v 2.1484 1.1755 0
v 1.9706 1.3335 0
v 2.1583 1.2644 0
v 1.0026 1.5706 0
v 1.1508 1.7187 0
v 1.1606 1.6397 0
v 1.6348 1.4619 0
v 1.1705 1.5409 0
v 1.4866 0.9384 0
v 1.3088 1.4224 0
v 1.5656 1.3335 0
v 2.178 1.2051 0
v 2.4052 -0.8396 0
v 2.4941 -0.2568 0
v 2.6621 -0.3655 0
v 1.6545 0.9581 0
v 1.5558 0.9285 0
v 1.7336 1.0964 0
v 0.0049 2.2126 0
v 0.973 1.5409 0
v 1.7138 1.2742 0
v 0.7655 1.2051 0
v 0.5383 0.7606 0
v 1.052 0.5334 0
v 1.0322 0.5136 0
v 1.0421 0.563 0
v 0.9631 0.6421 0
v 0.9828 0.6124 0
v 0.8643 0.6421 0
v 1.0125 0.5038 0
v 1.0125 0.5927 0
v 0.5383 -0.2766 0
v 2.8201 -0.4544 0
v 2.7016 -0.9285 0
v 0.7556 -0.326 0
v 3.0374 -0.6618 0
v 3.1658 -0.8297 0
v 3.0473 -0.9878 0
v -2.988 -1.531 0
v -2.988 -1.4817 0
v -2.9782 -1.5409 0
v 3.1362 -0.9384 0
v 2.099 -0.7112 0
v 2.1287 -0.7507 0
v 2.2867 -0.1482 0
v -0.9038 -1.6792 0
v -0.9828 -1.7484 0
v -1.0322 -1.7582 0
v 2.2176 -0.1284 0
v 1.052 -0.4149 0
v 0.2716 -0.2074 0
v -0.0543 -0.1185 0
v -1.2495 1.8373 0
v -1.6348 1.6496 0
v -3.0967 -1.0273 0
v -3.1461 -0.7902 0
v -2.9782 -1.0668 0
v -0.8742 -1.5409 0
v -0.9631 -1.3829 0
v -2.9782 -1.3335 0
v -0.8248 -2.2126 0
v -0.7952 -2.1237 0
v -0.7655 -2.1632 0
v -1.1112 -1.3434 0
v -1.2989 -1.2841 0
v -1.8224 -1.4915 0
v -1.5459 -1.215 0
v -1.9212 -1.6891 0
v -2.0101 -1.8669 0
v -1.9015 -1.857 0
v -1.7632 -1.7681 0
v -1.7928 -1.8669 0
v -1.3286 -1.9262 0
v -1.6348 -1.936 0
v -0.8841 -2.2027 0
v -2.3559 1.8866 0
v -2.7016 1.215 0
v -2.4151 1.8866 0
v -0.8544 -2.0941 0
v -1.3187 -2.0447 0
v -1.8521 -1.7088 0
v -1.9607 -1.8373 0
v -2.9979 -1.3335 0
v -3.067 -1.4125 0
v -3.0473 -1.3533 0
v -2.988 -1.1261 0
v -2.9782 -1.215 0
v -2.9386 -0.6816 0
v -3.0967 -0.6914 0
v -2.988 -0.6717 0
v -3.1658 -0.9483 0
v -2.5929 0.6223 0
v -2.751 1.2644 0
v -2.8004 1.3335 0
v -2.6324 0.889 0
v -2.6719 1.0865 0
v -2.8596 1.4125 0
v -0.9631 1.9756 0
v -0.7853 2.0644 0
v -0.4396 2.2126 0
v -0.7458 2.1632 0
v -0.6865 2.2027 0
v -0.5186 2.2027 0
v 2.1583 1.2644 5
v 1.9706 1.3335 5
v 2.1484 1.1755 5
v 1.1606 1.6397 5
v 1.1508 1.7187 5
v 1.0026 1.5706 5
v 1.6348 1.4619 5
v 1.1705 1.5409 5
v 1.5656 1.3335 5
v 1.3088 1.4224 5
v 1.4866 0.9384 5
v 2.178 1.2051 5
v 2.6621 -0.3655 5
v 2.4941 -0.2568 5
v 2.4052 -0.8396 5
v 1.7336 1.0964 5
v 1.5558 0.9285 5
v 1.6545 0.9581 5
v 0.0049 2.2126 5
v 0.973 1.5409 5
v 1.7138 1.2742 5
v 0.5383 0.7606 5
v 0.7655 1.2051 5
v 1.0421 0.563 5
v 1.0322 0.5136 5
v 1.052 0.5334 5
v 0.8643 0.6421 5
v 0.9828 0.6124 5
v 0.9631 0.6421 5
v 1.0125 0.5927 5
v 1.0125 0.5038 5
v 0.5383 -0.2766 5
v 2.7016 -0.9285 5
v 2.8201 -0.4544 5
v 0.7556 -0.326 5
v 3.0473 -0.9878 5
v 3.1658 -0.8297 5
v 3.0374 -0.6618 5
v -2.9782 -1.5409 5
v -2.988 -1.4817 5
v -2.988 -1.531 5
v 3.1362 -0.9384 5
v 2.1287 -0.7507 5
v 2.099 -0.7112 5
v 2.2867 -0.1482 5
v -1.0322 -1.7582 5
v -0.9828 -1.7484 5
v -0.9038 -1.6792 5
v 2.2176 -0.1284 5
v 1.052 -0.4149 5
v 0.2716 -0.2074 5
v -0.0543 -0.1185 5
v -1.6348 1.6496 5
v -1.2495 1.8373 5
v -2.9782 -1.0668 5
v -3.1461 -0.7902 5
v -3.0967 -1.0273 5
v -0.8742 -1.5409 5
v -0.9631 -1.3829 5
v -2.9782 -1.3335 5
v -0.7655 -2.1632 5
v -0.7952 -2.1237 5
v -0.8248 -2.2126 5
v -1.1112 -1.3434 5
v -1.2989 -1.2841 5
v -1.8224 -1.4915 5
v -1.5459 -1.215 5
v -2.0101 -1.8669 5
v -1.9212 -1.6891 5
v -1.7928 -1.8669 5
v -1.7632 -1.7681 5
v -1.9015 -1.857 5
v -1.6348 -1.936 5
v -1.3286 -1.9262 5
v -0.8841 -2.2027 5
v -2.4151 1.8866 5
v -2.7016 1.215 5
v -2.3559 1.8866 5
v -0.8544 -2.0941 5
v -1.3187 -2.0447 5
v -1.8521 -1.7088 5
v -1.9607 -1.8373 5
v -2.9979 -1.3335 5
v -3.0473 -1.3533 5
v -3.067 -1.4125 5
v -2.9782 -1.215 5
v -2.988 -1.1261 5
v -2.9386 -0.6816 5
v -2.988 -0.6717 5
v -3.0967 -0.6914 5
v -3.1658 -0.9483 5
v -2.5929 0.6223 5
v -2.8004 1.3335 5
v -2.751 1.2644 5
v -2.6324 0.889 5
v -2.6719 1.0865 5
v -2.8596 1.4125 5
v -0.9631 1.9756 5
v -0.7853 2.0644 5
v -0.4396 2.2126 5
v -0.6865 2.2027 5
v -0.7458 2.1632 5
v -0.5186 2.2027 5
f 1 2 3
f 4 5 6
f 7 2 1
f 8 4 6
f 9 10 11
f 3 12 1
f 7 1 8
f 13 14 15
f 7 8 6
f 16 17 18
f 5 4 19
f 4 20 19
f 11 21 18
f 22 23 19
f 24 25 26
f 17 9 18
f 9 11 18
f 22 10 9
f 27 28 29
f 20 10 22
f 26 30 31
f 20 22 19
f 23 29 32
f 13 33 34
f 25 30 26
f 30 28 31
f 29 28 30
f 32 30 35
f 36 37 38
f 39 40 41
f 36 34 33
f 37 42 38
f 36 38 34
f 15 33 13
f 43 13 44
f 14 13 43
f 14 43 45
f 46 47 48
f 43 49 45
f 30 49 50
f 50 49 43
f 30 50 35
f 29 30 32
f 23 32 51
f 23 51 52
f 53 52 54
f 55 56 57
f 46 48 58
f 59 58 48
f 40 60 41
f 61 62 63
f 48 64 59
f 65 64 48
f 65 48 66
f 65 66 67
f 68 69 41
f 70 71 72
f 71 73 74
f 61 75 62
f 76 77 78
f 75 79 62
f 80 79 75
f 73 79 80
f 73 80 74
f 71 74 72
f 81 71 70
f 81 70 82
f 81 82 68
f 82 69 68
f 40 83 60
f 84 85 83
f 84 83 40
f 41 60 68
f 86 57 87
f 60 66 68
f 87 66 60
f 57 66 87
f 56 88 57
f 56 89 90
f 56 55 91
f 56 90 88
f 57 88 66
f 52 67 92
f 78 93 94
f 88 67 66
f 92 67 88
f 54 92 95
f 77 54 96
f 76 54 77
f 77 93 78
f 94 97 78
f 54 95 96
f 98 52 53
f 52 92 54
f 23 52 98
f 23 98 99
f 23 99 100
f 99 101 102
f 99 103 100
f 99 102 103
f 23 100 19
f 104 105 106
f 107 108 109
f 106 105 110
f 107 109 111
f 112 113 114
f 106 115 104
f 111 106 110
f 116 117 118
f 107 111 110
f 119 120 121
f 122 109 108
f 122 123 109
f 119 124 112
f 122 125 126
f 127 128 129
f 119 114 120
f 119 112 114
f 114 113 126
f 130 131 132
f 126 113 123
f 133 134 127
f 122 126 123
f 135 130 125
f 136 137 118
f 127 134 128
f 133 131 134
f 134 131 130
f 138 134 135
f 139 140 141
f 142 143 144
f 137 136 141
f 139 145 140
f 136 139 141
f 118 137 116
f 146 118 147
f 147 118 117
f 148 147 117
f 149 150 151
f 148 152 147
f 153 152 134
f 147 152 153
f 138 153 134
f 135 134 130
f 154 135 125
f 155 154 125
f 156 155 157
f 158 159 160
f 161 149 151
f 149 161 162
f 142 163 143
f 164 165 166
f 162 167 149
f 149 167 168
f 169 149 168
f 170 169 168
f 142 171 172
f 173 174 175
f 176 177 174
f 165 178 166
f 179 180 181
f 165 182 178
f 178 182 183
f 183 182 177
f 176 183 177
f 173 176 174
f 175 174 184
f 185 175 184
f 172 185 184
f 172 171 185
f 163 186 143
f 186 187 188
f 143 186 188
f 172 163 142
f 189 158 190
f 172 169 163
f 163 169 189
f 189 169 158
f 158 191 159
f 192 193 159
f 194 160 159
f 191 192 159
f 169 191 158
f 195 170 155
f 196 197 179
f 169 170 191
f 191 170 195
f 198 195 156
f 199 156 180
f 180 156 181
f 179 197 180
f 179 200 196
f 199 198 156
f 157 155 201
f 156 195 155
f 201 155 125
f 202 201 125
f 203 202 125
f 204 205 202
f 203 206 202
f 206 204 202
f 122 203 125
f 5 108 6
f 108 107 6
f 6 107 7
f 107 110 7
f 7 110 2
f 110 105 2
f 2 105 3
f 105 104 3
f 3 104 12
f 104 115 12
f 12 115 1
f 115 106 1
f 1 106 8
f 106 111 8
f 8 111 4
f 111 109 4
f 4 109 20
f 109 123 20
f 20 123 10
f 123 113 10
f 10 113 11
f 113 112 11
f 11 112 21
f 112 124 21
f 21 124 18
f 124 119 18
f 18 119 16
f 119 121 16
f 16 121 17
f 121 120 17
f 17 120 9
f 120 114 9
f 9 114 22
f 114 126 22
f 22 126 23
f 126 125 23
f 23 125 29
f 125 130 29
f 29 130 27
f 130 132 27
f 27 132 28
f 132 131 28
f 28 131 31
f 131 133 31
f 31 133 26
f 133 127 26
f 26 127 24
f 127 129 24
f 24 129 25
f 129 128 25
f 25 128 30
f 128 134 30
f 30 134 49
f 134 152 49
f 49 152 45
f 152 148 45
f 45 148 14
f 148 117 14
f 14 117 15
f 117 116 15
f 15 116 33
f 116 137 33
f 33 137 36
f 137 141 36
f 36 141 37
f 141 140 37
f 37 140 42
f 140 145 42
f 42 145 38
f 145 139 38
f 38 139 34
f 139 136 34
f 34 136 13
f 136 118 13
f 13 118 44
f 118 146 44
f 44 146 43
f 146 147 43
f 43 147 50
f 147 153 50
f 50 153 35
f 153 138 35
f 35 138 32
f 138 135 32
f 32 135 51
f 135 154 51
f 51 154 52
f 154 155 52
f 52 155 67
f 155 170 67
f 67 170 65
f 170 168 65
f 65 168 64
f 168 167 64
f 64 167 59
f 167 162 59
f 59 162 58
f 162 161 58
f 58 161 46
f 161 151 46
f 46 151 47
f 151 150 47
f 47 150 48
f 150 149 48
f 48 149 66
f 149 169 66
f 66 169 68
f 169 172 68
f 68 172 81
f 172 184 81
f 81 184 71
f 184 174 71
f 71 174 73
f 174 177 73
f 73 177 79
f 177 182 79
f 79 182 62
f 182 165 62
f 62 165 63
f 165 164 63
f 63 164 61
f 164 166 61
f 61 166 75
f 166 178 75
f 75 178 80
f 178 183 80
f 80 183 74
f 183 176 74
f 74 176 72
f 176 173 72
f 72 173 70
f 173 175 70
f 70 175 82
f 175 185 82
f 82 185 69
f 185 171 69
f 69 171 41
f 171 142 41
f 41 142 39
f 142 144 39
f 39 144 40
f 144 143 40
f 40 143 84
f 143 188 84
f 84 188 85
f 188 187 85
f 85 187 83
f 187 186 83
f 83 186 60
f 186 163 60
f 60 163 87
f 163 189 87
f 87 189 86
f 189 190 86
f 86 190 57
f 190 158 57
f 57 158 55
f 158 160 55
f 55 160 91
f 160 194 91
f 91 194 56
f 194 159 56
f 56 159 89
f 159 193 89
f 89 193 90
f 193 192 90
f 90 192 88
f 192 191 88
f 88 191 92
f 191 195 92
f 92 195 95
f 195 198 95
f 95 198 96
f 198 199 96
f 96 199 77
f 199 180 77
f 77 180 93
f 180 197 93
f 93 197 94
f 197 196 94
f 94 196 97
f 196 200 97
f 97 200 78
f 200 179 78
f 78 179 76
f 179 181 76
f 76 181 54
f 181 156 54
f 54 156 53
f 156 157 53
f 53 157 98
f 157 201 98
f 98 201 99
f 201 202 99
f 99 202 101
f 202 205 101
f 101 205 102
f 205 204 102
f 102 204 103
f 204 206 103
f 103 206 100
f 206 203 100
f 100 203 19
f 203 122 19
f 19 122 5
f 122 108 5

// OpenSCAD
// Module names are of the form poly_<inkscape-path-id>().  As a result,
// you can associate a polygon in this OpenSCAD program with the corresponding
// SVG element in the Inkscape document by looking for the XML element with
// the attribute id="inkscape-path-id".

// fudge value is used to ensure that subtracted solids are a tad taller
// in the z dimension than the polygon being subtracted from.  This helps
// keep the resulting .stl file manifold.
fudge = 0.1;

module poly_path4201(h)
{
  scale([25.4/90, -25.4/90, 1]) union()
  {
    linear_extrude(height=h)
      polygon([[-8.347500,-6.685000],[-5.792500,-5.845000],[-4.427500,-6.510000],[-3.412500,-7.000000],[-2.782500,-7.315000],[-2.642500,-7.665000],[-2.432500,-7.805000],[-2.152500,-7.805000],[-1.837500,-7.805000],[-1.557500,-7.840000],[0.017500,-7.840000],[4.077500,-6.090000],[4.112500,-5.810000],[5.792500,-5.180000],[6.982500,-4.725000],[7.647500,-4.480000],[7.717500,-4.270000],[7.612500,-4.165000],[4.147500,-5.460000],[3.552500,-5.565000],[3.447500,-5.460000],[4.637500,-5.040000],[5.547500,-4.725000],[6.072500,-4.515000],[6.142500,-3.885000],[5.862500,-3.395000],[5.512500,-3.290000],[5.267500,-3.325000],[2.712500,-4.270000],[1.907500,-2.695000],[3.062500,-2.275000],[3.412500,-2.275000],[3.482500,-2.170000],[3.587500,-2.100000],[3.692500,-1.995000],[3.727500,-1.890000],[3.657500,-1.820000],[3.587500,-1.785000],[7.857500,0.455000],[8.102500,0.525000],[8.837500,0.910000],[9.432500,1.295000],[9.992500,1.610000],[10.762500,2.345000],[11.217500,2.940000],[11.112500,3.325000],[10.797500,3.500000],[9.572500,3.290000],[8.522500,2.975000],[7.542500,2.660000],[7.437500,2.520000],[5.337500,1.925000],[3.727500,1.470000],[2.677500,1.155000],[1.907500,0.980000],[0.962500,0.735000],[-0.192500,0.420000],[-5.477500,4.305000],[-4.602500,4.550000],[-3.937500,4.760000],[-3.412500,4.900000],[-3.097500,5.460000],[-3.202500,5.950000],[-3.482500,6.195000],[-3.657500,6.230000],[-6.457500,5.285000],[-6.807500,5.985000],[-6.562500,6.055000],[-6.247500,6.265000],[-4.707500,6.825000],[-3.622500,7.210000],[-3.027500,7.420000],[-2.817500,7.525000],[-2.712500,7.665000],[-2.922500,7.840000],[-3.132500,7.805000],[-4.672500,7.245000],[-5.792500,6.860000],[-6.352500,6.615000],[-6.737500,6.580000],[-6.947500,6.510000],[-7.122500,6.615000],[-10.552500,5.460000],[-10.587500,5.425000],[-10.587500,5.250000],[-10.867500,5.005000],[-10.797500,4.795000],[-10.622500,4.725000],[-10.552500,4.725000],[-10.552500,4.305000],[-10.587500,3.990000],[-10.552500,3.780000],[-10.972500,3.640000],[-11.217500,3.360000],[-11.147500,2.800000],[-10.972500,2.450000],[-10.587500,2.380000],[-10.412500,2.415000],[-9.187500,-2.205000],[-9.327500,-3.150000],[-9.467500,-3.850000],[-9.572500,-4.305000],[-9.747500,-4.480000],[-9.922500,-4.725000],[-10.132500,-5.005000],[-8.557500,-6.685000],[-8.347500,-6.685000]]);
  }
}

poly_path4201(5);
